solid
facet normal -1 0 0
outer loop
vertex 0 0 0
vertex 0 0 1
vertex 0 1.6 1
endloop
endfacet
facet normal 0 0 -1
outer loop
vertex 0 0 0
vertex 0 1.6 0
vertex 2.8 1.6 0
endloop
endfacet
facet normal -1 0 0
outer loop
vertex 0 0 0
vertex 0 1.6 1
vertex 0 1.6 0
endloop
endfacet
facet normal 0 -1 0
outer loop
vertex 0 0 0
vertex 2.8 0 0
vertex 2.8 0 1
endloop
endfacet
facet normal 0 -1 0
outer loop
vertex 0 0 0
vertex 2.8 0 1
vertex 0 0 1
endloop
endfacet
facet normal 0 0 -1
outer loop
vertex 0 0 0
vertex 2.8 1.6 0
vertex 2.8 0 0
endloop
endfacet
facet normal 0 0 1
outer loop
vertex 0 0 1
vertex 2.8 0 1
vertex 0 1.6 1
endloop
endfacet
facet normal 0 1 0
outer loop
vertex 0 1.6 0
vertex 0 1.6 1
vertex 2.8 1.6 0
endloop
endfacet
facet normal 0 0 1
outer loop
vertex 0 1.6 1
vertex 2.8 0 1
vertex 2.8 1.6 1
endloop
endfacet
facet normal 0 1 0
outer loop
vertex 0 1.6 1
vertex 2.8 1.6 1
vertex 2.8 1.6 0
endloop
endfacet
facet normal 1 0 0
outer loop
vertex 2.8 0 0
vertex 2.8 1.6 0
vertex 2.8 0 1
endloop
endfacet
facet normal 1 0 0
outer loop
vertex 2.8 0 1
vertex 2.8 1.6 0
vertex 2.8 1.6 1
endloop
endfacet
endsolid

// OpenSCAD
/* Warning, this is a very basic generator with a lot of approximation 
input data : [SOT-23, CZX, 2.80x1.60mm, 6, , D, C04-00028D]
generated by com.zoubworld.electronics.cad.model3d.Basic
Date : Sun Feb 15 10:50:48 CET 2026
*/

//body
color("black")
translate([0,0,0])
cube([2.8,1.6,1.0], center=false);
